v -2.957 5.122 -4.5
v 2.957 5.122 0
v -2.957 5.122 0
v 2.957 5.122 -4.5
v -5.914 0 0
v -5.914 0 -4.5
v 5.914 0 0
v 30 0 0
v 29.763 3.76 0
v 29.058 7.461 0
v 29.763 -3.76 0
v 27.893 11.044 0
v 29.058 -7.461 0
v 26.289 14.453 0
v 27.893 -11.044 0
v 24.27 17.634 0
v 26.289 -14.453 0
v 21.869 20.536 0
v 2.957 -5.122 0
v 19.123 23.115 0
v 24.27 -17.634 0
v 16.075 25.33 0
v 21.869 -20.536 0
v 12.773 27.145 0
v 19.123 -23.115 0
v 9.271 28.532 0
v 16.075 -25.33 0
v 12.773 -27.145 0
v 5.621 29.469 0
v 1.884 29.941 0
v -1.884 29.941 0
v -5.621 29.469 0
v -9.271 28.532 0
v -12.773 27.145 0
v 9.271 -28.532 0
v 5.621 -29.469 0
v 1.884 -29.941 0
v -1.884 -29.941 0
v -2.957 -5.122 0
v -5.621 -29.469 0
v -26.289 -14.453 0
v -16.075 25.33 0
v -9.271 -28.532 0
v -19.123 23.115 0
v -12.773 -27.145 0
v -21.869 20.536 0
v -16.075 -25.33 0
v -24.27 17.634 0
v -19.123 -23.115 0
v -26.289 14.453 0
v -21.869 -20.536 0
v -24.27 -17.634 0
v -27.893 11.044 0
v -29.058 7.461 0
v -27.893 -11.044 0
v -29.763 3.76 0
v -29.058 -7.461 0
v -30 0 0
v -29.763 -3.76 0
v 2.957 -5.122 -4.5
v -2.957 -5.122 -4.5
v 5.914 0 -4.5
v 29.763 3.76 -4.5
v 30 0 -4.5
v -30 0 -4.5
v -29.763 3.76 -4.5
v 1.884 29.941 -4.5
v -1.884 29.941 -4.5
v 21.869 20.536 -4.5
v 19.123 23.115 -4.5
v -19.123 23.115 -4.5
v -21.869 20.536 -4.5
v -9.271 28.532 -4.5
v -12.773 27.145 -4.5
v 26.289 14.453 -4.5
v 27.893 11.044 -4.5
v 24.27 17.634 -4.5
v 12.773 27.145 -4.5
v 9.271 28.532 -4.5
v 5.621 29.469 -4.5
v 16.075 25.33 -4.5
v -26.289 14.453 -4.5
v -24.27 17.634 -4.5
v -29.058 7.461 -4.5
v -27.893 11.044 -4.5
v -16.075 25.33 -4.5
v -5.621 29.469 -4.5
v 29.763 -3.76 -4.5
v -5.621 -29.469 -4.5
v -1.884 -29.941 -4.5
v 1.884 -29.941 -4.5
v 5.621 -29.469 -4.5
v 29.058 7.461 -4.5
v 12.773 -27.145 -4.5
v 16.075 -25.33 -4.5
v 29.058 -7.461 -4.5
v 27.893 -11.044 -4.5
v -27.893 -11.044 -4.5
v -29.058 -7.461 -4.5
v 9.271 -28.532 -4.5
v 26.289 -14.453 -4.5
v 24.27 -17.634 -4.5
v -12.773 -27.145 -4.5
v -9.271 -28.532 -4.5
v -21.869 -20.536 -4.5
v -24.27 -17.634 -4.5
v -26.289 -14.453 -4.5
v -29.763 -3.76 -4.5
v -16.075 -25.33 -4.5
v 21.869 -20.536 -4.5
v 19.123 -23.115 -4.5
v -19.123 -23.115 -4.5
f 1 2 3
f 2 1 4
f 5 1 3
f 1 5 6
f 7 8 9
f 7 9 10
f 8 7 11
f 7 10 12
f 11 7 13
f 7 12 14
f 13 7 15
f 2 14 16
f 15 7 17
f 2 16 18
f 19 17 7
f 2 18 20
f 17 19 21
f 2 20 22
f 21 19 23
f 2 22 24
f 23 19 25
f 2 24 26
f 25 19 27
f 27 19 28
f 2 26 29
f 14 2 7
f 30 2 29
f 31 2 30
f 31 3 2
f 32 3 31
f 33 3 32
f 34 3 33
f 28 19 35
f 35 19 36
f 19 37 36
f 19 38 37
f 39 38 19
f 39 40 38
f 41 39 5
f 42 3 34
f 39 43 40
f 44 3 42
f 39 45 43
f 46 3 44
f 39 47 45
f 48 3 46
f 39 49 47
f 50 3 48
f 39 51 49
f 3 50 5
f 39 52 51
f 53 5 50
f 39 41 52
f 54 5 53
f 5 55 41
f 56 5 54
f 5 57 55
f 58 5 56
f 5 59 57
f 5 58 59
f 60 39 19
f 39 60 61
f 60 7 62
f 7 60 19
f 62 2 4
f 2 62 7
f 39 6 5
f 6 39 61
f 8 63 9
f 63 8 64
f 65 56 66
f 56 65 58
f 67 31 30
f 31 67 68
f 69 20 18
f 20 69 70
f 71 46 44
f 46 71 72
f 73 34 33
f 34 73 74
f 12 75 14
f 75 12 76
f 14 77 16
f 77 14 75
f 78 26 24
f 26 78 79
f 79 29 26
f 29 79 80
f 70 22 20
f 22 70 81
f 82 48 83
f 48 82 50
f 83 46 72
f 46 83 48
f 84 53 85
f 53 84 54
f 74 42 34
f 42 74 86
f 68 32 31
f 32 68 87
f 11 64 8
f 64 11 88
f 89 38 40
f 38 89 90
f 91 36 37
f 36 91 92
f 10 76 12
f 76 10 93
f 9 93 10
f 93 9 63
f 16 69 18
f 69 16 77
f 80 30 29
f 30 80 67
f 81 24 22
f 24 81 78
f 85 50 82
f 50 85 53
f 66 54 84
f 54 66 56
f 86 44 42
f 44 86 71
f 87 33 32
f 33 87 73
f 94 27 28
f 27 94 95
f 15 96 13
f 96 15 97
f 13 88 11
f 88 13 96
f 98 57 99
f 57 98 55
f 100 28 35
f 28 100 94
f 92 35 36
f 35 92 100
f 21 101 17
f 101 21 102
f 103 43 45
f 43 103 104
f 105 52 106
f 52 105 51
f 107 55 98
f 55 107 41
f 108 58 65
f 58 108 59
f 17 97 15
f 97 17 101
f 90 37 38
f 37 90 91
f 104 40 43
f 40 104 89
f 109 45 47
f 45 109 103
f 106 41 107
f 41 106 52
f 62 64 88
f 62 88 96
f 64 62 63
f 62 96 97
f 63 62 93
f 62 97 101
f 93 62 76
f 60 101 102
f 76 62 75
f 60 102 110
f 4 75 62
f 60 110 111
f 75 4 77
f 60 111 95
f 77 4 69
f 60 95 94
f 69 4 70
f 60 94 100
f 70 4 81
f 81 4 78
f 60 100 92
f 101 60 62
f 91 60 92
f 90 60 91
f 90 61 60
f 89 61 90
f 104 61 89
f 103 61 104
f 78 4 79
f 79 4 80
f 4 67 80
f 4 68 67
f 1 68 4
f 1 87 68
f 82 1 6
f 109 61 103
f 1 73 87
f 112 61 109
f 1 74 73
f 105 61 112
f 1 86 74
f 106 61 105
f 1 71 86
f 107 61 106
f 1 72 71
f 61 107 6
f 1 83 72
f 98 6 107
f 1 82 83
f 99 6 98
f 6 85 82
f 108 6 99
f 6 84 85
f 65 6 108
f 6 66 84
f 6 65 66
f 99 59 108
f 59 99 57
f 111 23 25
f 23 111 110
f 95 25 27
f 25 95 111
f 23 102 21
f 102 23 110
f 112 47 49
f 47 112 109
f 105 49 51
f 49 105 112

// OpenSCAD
$fn = 50;


difference() {
	union() {
		translate(v = [0, 0, -4.5000000000]) {
			cylinder(h = 4.5000000000, r = 30.0000000000);
		}
	}
	union() {
		translate(v = [0, 0, 0]) {
			rotate(a = [0, 0, 0]) {
				difference() {
					union() {
						translate(v = [0, 0, -5]) {
							linear_extrude(height = 5) {
								polygon(points = [[5.9142500000, 0.0000000000], [2.9571250000, 5.1218907443], [-2.9571250000, 5.1218907443], [-5.9142500000, 0.0000000000], [-2.9571250000, -5.1218907443], [2.9571250000, -5.1218907443]]);
							}
						}
					}
					union();
				}
			}
		}
		#translate(v = [0, 0, -100.0000000000]) {
			cylinder(h = 200, r = 3.2500000000);
		}
	}
}
